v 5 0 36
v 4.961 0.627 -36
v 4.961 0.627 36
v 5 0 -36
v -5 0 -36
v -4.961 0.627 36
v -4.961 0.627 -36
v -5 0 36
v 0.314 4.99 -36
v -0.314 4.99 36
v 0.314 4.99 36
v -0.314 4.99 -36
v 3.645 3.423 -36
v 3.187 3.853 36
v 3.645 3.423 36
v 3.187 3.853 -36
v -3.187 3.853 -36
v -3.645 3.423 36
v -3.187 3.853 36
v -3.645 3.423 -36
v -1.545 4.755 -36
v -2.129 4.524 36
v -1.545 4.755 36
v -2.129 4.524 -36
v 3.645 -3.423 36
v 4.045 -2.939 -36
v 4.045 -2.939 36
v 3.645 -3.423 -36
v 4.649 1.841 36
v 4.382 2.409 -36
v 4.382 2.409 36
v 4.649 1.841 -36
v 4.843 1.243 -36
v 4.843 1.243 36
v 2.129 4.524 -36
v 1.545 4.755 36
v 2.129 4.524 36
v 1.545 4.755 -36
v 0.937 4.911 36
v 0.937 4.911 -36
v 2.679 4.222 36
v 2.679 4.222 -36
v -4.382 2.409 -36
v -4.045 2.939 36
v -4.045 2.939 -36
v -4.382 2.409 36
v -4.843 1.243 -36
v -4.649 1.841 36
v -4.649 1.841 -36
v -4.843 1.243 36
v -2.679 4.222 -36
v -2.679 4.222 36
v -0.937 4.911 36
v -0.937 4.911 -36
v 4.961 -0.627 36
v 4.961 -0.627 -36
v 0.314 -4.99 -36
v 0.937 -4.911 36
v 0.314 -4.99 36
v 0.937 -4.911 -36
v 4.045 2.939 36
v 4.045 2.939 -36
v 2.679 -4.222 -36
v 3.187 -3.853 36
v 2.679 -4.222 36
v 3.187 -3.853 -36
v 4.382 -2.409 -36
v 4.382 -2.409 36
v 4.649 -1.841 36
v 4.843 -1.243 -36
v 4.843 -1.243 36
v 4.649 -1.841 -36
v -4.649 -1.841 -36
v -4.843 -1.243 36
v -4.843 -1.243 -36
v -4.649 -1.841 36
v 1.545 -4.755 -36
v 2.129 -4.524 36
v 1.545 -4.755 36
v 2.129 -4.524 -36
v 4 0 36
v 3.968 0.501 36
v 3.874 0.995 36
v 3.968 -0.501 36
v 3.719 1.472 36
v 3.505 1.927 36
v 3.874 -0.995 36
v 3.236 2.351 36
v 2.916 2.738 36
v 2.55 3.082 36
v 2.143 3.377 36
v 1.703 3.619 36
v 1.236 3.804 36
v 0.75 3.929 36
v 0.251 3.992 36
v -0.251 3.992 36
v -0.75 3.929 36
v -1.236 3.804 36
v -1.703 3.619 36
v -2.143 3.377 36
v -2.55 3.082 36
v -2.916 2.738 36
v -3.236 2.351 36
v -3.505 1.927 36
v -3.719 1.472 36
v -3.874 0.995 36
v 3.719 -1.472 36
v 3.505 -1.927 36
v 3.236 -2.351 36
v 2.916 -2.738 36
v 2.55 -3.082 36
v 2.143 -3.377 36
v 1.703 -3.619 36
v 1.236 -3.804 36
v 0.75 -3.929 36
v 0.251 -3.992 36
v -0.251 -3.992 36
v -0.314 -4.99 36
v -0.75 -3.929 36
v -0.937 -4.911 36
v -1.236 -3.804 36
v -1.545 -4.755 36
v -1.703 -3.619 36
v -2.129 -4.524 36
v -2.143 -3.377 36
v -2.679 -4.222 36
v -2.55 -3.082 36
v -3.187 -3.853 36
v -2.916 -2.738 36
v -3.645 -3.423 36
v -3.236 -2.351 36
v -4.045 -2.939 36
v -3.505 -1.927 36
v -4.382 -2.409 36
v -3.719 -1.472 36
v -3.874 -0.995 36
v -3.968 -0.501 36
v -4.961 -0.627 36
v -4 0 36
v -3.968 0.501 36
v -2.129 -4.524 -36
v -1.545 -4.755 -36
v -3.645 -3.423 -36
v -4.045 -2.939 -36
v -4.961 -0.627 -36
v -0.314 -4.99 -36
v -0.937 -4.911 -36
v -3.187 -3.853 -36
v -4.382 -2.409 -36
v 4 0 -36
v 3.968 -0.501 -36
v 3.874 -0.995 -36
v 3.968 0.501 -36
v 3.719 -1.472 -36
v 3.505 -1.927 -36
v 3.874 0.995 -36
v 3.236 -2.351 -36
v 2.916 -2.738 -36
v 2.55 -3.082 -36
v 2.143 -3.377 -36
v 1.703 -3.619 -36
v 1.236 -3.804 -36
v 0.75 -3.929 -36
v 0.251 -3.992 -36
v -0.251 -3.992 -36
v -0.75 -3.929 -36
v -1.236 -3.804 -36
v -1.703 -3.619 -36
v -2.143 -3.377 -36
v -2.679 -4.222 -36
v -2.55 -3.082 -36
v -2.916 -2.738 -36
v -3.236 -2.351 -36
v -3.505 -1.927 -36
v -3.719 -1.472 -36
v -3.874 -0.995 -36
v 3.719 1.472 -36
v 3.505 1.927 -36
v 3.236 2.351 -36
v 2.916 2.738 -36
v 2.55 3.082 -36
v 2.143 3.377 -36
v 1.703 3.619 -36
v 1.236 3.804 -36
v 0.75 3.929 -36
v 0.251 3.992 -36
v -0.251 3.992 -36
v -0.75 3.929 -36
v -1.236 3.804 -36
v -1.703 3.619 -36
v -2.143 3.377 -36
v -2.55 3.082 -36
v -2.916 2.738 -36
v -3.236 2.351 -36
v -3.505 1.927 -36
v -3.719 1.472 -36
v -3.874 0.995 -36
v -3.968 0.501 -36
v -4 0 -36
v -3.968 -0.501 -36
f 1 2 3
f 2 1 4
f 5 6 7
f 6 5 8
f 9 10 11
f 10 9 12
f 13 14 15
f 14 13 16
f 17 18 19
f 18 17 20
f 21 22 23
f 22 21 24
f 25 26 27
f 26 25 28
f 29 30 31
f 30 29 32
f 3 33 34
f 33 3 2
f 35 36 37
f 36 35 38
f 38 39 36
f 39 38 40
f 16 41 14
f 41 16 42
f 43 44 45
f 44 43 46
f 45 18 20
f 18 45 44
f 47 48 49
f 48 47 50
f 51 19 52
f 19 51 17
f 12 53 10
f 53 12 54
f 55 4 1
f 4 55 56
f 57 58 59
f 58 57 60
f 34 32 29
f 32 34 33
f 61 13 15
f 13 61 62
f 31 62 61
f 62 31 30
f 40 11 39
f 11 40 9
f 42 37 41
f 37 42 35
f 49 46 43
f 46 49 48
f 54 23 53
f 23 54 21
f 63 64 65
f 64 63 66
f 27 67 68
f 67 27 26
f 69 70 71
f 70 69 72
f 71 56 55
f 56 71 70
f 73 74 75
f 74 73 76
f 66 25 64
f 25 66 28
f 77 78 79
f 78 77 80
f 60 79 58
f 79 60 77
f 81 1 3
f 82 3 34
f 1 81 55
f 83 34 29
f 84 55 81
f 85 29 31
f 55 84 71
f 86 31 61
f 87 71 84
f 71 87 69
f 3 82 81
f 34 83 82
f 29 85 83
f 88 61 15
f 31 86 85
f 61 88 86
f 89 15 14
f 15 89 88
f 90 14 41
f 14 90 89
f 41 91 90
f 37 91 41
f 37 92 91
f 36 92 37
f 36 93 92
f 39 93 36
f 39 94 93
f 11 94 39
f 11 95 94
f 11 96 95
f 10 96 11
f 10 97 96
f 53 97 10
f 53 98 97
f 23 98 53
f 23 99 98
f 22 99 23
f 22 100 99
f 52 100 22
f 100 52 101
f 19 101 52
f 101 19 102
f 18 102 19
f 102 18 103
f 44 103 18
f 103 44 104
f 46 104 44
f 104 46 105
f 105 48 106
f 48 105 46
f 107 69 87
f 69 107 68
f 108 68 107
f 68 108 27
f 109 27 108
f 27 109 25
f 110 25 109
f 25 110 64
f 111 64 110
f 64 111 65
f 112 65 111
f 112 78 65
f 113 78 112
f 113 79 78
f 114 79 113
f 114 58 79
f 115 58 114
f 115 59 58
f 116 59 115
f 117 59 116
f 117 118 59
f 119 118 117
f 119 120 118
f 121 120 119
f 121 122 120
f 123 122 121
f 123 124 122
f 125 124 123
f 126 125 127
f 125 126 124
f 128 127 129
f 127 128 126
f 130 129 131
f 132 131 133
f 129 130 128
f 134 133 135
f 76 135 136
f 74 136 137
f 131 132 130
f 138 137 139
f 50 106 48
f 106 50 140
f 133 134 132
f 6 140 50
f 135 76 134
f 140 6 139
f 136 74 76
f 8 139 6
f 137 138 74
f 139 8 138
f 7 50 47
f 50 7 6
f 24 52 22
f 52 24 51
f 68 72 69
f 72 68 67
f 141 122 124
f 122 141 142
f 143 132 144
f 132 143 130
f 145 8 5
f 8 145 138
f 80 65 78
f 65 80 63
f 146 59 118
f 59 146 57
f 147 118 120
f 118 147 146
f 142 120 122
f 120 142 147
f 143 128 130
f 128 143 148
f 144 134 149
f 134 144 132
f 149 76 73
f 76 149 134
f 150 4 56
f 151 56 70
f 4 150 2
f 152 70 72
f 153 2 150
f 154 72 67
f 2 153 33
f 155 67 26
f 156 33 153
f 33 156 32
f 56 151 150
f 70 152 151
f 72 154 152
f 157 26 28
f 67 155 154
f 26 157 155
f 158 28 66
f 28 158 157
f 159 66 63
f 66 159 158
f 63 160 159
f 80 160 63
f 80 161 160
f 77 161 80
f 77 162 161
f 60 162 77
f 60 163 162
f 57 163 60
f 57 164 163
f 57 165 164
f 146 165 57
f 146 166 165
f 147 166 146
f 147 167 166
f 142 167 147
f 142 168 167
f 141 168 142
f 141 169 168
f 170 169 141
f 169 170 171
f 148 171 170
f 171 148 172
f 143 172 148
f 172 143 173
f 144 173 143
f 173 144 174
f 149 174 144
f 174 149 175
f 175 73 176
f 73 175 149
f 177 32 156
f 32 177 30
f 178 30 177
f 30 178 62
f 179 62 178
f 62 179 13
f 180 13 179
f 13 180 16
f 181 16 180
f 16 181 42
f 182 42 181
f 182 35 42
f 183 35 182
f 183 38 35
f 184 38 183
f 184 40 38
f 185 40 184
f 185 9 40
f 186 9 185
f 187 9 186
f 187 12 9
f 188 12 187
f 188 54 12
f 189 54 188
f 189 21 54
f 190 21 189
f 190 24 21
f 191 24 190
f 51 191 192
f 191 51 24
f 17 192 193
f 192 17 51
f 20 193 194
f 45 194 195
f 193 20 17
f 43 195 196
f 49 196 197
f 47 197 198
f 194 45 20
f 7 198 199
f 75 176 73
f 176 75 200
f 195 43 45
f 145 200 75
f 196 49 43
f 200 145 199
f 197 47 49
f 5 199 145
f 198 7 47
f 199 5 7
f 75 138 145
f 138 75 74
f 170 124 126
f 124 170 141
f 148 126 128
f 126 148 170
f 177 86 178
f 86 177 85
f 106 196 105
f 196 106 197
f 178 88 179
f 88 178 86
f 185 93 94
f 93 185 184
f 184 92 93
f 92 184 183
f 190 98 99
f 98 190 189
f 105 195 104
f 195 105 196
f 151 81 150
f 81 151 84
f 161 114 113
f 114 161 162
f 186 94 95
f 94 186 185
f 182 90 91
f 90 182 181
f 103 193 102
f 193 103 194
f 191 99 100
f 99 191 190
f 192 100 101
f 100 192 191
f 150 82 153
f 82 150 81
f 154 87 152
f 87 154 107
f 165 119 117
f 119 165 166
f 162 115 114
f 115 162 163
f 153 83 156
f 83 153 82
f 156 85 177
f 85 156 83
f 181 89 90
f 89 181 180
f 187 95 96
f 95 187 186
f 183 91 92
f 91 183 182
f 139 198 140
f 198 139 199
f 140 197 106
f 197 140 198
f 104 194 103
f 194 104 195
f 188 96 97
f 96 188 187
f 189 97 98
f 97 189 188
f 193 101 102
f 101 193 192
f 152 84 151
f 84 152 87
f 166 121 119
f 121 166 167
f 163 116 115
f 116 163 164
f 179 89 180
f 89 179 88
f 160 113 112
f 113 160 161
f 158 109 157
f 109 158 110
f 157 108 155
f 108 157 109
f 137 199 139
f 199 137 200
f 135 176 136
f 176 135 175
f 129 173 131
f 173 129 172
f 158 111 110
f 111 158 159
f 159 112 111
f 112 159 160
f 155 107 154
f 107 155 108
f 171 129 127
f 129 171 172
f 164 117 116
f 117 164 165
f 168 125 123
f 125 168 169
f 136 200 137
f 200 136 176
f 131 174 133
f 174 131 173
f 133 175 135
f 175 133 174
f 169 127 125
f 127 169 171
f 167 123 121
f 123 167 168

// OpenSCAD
$fn = 50;


difference() {
	union() {
		translate(v = [0, 0, -36.0000000000]) {
			cylinder(h = 72, r = 5.0000000000);
		}
	}
	union() {
		translate(v = [0, 0, -100.0000000000]) {
			cylinder(h = 200, r = 4.0000000000);
		}
	}
}
